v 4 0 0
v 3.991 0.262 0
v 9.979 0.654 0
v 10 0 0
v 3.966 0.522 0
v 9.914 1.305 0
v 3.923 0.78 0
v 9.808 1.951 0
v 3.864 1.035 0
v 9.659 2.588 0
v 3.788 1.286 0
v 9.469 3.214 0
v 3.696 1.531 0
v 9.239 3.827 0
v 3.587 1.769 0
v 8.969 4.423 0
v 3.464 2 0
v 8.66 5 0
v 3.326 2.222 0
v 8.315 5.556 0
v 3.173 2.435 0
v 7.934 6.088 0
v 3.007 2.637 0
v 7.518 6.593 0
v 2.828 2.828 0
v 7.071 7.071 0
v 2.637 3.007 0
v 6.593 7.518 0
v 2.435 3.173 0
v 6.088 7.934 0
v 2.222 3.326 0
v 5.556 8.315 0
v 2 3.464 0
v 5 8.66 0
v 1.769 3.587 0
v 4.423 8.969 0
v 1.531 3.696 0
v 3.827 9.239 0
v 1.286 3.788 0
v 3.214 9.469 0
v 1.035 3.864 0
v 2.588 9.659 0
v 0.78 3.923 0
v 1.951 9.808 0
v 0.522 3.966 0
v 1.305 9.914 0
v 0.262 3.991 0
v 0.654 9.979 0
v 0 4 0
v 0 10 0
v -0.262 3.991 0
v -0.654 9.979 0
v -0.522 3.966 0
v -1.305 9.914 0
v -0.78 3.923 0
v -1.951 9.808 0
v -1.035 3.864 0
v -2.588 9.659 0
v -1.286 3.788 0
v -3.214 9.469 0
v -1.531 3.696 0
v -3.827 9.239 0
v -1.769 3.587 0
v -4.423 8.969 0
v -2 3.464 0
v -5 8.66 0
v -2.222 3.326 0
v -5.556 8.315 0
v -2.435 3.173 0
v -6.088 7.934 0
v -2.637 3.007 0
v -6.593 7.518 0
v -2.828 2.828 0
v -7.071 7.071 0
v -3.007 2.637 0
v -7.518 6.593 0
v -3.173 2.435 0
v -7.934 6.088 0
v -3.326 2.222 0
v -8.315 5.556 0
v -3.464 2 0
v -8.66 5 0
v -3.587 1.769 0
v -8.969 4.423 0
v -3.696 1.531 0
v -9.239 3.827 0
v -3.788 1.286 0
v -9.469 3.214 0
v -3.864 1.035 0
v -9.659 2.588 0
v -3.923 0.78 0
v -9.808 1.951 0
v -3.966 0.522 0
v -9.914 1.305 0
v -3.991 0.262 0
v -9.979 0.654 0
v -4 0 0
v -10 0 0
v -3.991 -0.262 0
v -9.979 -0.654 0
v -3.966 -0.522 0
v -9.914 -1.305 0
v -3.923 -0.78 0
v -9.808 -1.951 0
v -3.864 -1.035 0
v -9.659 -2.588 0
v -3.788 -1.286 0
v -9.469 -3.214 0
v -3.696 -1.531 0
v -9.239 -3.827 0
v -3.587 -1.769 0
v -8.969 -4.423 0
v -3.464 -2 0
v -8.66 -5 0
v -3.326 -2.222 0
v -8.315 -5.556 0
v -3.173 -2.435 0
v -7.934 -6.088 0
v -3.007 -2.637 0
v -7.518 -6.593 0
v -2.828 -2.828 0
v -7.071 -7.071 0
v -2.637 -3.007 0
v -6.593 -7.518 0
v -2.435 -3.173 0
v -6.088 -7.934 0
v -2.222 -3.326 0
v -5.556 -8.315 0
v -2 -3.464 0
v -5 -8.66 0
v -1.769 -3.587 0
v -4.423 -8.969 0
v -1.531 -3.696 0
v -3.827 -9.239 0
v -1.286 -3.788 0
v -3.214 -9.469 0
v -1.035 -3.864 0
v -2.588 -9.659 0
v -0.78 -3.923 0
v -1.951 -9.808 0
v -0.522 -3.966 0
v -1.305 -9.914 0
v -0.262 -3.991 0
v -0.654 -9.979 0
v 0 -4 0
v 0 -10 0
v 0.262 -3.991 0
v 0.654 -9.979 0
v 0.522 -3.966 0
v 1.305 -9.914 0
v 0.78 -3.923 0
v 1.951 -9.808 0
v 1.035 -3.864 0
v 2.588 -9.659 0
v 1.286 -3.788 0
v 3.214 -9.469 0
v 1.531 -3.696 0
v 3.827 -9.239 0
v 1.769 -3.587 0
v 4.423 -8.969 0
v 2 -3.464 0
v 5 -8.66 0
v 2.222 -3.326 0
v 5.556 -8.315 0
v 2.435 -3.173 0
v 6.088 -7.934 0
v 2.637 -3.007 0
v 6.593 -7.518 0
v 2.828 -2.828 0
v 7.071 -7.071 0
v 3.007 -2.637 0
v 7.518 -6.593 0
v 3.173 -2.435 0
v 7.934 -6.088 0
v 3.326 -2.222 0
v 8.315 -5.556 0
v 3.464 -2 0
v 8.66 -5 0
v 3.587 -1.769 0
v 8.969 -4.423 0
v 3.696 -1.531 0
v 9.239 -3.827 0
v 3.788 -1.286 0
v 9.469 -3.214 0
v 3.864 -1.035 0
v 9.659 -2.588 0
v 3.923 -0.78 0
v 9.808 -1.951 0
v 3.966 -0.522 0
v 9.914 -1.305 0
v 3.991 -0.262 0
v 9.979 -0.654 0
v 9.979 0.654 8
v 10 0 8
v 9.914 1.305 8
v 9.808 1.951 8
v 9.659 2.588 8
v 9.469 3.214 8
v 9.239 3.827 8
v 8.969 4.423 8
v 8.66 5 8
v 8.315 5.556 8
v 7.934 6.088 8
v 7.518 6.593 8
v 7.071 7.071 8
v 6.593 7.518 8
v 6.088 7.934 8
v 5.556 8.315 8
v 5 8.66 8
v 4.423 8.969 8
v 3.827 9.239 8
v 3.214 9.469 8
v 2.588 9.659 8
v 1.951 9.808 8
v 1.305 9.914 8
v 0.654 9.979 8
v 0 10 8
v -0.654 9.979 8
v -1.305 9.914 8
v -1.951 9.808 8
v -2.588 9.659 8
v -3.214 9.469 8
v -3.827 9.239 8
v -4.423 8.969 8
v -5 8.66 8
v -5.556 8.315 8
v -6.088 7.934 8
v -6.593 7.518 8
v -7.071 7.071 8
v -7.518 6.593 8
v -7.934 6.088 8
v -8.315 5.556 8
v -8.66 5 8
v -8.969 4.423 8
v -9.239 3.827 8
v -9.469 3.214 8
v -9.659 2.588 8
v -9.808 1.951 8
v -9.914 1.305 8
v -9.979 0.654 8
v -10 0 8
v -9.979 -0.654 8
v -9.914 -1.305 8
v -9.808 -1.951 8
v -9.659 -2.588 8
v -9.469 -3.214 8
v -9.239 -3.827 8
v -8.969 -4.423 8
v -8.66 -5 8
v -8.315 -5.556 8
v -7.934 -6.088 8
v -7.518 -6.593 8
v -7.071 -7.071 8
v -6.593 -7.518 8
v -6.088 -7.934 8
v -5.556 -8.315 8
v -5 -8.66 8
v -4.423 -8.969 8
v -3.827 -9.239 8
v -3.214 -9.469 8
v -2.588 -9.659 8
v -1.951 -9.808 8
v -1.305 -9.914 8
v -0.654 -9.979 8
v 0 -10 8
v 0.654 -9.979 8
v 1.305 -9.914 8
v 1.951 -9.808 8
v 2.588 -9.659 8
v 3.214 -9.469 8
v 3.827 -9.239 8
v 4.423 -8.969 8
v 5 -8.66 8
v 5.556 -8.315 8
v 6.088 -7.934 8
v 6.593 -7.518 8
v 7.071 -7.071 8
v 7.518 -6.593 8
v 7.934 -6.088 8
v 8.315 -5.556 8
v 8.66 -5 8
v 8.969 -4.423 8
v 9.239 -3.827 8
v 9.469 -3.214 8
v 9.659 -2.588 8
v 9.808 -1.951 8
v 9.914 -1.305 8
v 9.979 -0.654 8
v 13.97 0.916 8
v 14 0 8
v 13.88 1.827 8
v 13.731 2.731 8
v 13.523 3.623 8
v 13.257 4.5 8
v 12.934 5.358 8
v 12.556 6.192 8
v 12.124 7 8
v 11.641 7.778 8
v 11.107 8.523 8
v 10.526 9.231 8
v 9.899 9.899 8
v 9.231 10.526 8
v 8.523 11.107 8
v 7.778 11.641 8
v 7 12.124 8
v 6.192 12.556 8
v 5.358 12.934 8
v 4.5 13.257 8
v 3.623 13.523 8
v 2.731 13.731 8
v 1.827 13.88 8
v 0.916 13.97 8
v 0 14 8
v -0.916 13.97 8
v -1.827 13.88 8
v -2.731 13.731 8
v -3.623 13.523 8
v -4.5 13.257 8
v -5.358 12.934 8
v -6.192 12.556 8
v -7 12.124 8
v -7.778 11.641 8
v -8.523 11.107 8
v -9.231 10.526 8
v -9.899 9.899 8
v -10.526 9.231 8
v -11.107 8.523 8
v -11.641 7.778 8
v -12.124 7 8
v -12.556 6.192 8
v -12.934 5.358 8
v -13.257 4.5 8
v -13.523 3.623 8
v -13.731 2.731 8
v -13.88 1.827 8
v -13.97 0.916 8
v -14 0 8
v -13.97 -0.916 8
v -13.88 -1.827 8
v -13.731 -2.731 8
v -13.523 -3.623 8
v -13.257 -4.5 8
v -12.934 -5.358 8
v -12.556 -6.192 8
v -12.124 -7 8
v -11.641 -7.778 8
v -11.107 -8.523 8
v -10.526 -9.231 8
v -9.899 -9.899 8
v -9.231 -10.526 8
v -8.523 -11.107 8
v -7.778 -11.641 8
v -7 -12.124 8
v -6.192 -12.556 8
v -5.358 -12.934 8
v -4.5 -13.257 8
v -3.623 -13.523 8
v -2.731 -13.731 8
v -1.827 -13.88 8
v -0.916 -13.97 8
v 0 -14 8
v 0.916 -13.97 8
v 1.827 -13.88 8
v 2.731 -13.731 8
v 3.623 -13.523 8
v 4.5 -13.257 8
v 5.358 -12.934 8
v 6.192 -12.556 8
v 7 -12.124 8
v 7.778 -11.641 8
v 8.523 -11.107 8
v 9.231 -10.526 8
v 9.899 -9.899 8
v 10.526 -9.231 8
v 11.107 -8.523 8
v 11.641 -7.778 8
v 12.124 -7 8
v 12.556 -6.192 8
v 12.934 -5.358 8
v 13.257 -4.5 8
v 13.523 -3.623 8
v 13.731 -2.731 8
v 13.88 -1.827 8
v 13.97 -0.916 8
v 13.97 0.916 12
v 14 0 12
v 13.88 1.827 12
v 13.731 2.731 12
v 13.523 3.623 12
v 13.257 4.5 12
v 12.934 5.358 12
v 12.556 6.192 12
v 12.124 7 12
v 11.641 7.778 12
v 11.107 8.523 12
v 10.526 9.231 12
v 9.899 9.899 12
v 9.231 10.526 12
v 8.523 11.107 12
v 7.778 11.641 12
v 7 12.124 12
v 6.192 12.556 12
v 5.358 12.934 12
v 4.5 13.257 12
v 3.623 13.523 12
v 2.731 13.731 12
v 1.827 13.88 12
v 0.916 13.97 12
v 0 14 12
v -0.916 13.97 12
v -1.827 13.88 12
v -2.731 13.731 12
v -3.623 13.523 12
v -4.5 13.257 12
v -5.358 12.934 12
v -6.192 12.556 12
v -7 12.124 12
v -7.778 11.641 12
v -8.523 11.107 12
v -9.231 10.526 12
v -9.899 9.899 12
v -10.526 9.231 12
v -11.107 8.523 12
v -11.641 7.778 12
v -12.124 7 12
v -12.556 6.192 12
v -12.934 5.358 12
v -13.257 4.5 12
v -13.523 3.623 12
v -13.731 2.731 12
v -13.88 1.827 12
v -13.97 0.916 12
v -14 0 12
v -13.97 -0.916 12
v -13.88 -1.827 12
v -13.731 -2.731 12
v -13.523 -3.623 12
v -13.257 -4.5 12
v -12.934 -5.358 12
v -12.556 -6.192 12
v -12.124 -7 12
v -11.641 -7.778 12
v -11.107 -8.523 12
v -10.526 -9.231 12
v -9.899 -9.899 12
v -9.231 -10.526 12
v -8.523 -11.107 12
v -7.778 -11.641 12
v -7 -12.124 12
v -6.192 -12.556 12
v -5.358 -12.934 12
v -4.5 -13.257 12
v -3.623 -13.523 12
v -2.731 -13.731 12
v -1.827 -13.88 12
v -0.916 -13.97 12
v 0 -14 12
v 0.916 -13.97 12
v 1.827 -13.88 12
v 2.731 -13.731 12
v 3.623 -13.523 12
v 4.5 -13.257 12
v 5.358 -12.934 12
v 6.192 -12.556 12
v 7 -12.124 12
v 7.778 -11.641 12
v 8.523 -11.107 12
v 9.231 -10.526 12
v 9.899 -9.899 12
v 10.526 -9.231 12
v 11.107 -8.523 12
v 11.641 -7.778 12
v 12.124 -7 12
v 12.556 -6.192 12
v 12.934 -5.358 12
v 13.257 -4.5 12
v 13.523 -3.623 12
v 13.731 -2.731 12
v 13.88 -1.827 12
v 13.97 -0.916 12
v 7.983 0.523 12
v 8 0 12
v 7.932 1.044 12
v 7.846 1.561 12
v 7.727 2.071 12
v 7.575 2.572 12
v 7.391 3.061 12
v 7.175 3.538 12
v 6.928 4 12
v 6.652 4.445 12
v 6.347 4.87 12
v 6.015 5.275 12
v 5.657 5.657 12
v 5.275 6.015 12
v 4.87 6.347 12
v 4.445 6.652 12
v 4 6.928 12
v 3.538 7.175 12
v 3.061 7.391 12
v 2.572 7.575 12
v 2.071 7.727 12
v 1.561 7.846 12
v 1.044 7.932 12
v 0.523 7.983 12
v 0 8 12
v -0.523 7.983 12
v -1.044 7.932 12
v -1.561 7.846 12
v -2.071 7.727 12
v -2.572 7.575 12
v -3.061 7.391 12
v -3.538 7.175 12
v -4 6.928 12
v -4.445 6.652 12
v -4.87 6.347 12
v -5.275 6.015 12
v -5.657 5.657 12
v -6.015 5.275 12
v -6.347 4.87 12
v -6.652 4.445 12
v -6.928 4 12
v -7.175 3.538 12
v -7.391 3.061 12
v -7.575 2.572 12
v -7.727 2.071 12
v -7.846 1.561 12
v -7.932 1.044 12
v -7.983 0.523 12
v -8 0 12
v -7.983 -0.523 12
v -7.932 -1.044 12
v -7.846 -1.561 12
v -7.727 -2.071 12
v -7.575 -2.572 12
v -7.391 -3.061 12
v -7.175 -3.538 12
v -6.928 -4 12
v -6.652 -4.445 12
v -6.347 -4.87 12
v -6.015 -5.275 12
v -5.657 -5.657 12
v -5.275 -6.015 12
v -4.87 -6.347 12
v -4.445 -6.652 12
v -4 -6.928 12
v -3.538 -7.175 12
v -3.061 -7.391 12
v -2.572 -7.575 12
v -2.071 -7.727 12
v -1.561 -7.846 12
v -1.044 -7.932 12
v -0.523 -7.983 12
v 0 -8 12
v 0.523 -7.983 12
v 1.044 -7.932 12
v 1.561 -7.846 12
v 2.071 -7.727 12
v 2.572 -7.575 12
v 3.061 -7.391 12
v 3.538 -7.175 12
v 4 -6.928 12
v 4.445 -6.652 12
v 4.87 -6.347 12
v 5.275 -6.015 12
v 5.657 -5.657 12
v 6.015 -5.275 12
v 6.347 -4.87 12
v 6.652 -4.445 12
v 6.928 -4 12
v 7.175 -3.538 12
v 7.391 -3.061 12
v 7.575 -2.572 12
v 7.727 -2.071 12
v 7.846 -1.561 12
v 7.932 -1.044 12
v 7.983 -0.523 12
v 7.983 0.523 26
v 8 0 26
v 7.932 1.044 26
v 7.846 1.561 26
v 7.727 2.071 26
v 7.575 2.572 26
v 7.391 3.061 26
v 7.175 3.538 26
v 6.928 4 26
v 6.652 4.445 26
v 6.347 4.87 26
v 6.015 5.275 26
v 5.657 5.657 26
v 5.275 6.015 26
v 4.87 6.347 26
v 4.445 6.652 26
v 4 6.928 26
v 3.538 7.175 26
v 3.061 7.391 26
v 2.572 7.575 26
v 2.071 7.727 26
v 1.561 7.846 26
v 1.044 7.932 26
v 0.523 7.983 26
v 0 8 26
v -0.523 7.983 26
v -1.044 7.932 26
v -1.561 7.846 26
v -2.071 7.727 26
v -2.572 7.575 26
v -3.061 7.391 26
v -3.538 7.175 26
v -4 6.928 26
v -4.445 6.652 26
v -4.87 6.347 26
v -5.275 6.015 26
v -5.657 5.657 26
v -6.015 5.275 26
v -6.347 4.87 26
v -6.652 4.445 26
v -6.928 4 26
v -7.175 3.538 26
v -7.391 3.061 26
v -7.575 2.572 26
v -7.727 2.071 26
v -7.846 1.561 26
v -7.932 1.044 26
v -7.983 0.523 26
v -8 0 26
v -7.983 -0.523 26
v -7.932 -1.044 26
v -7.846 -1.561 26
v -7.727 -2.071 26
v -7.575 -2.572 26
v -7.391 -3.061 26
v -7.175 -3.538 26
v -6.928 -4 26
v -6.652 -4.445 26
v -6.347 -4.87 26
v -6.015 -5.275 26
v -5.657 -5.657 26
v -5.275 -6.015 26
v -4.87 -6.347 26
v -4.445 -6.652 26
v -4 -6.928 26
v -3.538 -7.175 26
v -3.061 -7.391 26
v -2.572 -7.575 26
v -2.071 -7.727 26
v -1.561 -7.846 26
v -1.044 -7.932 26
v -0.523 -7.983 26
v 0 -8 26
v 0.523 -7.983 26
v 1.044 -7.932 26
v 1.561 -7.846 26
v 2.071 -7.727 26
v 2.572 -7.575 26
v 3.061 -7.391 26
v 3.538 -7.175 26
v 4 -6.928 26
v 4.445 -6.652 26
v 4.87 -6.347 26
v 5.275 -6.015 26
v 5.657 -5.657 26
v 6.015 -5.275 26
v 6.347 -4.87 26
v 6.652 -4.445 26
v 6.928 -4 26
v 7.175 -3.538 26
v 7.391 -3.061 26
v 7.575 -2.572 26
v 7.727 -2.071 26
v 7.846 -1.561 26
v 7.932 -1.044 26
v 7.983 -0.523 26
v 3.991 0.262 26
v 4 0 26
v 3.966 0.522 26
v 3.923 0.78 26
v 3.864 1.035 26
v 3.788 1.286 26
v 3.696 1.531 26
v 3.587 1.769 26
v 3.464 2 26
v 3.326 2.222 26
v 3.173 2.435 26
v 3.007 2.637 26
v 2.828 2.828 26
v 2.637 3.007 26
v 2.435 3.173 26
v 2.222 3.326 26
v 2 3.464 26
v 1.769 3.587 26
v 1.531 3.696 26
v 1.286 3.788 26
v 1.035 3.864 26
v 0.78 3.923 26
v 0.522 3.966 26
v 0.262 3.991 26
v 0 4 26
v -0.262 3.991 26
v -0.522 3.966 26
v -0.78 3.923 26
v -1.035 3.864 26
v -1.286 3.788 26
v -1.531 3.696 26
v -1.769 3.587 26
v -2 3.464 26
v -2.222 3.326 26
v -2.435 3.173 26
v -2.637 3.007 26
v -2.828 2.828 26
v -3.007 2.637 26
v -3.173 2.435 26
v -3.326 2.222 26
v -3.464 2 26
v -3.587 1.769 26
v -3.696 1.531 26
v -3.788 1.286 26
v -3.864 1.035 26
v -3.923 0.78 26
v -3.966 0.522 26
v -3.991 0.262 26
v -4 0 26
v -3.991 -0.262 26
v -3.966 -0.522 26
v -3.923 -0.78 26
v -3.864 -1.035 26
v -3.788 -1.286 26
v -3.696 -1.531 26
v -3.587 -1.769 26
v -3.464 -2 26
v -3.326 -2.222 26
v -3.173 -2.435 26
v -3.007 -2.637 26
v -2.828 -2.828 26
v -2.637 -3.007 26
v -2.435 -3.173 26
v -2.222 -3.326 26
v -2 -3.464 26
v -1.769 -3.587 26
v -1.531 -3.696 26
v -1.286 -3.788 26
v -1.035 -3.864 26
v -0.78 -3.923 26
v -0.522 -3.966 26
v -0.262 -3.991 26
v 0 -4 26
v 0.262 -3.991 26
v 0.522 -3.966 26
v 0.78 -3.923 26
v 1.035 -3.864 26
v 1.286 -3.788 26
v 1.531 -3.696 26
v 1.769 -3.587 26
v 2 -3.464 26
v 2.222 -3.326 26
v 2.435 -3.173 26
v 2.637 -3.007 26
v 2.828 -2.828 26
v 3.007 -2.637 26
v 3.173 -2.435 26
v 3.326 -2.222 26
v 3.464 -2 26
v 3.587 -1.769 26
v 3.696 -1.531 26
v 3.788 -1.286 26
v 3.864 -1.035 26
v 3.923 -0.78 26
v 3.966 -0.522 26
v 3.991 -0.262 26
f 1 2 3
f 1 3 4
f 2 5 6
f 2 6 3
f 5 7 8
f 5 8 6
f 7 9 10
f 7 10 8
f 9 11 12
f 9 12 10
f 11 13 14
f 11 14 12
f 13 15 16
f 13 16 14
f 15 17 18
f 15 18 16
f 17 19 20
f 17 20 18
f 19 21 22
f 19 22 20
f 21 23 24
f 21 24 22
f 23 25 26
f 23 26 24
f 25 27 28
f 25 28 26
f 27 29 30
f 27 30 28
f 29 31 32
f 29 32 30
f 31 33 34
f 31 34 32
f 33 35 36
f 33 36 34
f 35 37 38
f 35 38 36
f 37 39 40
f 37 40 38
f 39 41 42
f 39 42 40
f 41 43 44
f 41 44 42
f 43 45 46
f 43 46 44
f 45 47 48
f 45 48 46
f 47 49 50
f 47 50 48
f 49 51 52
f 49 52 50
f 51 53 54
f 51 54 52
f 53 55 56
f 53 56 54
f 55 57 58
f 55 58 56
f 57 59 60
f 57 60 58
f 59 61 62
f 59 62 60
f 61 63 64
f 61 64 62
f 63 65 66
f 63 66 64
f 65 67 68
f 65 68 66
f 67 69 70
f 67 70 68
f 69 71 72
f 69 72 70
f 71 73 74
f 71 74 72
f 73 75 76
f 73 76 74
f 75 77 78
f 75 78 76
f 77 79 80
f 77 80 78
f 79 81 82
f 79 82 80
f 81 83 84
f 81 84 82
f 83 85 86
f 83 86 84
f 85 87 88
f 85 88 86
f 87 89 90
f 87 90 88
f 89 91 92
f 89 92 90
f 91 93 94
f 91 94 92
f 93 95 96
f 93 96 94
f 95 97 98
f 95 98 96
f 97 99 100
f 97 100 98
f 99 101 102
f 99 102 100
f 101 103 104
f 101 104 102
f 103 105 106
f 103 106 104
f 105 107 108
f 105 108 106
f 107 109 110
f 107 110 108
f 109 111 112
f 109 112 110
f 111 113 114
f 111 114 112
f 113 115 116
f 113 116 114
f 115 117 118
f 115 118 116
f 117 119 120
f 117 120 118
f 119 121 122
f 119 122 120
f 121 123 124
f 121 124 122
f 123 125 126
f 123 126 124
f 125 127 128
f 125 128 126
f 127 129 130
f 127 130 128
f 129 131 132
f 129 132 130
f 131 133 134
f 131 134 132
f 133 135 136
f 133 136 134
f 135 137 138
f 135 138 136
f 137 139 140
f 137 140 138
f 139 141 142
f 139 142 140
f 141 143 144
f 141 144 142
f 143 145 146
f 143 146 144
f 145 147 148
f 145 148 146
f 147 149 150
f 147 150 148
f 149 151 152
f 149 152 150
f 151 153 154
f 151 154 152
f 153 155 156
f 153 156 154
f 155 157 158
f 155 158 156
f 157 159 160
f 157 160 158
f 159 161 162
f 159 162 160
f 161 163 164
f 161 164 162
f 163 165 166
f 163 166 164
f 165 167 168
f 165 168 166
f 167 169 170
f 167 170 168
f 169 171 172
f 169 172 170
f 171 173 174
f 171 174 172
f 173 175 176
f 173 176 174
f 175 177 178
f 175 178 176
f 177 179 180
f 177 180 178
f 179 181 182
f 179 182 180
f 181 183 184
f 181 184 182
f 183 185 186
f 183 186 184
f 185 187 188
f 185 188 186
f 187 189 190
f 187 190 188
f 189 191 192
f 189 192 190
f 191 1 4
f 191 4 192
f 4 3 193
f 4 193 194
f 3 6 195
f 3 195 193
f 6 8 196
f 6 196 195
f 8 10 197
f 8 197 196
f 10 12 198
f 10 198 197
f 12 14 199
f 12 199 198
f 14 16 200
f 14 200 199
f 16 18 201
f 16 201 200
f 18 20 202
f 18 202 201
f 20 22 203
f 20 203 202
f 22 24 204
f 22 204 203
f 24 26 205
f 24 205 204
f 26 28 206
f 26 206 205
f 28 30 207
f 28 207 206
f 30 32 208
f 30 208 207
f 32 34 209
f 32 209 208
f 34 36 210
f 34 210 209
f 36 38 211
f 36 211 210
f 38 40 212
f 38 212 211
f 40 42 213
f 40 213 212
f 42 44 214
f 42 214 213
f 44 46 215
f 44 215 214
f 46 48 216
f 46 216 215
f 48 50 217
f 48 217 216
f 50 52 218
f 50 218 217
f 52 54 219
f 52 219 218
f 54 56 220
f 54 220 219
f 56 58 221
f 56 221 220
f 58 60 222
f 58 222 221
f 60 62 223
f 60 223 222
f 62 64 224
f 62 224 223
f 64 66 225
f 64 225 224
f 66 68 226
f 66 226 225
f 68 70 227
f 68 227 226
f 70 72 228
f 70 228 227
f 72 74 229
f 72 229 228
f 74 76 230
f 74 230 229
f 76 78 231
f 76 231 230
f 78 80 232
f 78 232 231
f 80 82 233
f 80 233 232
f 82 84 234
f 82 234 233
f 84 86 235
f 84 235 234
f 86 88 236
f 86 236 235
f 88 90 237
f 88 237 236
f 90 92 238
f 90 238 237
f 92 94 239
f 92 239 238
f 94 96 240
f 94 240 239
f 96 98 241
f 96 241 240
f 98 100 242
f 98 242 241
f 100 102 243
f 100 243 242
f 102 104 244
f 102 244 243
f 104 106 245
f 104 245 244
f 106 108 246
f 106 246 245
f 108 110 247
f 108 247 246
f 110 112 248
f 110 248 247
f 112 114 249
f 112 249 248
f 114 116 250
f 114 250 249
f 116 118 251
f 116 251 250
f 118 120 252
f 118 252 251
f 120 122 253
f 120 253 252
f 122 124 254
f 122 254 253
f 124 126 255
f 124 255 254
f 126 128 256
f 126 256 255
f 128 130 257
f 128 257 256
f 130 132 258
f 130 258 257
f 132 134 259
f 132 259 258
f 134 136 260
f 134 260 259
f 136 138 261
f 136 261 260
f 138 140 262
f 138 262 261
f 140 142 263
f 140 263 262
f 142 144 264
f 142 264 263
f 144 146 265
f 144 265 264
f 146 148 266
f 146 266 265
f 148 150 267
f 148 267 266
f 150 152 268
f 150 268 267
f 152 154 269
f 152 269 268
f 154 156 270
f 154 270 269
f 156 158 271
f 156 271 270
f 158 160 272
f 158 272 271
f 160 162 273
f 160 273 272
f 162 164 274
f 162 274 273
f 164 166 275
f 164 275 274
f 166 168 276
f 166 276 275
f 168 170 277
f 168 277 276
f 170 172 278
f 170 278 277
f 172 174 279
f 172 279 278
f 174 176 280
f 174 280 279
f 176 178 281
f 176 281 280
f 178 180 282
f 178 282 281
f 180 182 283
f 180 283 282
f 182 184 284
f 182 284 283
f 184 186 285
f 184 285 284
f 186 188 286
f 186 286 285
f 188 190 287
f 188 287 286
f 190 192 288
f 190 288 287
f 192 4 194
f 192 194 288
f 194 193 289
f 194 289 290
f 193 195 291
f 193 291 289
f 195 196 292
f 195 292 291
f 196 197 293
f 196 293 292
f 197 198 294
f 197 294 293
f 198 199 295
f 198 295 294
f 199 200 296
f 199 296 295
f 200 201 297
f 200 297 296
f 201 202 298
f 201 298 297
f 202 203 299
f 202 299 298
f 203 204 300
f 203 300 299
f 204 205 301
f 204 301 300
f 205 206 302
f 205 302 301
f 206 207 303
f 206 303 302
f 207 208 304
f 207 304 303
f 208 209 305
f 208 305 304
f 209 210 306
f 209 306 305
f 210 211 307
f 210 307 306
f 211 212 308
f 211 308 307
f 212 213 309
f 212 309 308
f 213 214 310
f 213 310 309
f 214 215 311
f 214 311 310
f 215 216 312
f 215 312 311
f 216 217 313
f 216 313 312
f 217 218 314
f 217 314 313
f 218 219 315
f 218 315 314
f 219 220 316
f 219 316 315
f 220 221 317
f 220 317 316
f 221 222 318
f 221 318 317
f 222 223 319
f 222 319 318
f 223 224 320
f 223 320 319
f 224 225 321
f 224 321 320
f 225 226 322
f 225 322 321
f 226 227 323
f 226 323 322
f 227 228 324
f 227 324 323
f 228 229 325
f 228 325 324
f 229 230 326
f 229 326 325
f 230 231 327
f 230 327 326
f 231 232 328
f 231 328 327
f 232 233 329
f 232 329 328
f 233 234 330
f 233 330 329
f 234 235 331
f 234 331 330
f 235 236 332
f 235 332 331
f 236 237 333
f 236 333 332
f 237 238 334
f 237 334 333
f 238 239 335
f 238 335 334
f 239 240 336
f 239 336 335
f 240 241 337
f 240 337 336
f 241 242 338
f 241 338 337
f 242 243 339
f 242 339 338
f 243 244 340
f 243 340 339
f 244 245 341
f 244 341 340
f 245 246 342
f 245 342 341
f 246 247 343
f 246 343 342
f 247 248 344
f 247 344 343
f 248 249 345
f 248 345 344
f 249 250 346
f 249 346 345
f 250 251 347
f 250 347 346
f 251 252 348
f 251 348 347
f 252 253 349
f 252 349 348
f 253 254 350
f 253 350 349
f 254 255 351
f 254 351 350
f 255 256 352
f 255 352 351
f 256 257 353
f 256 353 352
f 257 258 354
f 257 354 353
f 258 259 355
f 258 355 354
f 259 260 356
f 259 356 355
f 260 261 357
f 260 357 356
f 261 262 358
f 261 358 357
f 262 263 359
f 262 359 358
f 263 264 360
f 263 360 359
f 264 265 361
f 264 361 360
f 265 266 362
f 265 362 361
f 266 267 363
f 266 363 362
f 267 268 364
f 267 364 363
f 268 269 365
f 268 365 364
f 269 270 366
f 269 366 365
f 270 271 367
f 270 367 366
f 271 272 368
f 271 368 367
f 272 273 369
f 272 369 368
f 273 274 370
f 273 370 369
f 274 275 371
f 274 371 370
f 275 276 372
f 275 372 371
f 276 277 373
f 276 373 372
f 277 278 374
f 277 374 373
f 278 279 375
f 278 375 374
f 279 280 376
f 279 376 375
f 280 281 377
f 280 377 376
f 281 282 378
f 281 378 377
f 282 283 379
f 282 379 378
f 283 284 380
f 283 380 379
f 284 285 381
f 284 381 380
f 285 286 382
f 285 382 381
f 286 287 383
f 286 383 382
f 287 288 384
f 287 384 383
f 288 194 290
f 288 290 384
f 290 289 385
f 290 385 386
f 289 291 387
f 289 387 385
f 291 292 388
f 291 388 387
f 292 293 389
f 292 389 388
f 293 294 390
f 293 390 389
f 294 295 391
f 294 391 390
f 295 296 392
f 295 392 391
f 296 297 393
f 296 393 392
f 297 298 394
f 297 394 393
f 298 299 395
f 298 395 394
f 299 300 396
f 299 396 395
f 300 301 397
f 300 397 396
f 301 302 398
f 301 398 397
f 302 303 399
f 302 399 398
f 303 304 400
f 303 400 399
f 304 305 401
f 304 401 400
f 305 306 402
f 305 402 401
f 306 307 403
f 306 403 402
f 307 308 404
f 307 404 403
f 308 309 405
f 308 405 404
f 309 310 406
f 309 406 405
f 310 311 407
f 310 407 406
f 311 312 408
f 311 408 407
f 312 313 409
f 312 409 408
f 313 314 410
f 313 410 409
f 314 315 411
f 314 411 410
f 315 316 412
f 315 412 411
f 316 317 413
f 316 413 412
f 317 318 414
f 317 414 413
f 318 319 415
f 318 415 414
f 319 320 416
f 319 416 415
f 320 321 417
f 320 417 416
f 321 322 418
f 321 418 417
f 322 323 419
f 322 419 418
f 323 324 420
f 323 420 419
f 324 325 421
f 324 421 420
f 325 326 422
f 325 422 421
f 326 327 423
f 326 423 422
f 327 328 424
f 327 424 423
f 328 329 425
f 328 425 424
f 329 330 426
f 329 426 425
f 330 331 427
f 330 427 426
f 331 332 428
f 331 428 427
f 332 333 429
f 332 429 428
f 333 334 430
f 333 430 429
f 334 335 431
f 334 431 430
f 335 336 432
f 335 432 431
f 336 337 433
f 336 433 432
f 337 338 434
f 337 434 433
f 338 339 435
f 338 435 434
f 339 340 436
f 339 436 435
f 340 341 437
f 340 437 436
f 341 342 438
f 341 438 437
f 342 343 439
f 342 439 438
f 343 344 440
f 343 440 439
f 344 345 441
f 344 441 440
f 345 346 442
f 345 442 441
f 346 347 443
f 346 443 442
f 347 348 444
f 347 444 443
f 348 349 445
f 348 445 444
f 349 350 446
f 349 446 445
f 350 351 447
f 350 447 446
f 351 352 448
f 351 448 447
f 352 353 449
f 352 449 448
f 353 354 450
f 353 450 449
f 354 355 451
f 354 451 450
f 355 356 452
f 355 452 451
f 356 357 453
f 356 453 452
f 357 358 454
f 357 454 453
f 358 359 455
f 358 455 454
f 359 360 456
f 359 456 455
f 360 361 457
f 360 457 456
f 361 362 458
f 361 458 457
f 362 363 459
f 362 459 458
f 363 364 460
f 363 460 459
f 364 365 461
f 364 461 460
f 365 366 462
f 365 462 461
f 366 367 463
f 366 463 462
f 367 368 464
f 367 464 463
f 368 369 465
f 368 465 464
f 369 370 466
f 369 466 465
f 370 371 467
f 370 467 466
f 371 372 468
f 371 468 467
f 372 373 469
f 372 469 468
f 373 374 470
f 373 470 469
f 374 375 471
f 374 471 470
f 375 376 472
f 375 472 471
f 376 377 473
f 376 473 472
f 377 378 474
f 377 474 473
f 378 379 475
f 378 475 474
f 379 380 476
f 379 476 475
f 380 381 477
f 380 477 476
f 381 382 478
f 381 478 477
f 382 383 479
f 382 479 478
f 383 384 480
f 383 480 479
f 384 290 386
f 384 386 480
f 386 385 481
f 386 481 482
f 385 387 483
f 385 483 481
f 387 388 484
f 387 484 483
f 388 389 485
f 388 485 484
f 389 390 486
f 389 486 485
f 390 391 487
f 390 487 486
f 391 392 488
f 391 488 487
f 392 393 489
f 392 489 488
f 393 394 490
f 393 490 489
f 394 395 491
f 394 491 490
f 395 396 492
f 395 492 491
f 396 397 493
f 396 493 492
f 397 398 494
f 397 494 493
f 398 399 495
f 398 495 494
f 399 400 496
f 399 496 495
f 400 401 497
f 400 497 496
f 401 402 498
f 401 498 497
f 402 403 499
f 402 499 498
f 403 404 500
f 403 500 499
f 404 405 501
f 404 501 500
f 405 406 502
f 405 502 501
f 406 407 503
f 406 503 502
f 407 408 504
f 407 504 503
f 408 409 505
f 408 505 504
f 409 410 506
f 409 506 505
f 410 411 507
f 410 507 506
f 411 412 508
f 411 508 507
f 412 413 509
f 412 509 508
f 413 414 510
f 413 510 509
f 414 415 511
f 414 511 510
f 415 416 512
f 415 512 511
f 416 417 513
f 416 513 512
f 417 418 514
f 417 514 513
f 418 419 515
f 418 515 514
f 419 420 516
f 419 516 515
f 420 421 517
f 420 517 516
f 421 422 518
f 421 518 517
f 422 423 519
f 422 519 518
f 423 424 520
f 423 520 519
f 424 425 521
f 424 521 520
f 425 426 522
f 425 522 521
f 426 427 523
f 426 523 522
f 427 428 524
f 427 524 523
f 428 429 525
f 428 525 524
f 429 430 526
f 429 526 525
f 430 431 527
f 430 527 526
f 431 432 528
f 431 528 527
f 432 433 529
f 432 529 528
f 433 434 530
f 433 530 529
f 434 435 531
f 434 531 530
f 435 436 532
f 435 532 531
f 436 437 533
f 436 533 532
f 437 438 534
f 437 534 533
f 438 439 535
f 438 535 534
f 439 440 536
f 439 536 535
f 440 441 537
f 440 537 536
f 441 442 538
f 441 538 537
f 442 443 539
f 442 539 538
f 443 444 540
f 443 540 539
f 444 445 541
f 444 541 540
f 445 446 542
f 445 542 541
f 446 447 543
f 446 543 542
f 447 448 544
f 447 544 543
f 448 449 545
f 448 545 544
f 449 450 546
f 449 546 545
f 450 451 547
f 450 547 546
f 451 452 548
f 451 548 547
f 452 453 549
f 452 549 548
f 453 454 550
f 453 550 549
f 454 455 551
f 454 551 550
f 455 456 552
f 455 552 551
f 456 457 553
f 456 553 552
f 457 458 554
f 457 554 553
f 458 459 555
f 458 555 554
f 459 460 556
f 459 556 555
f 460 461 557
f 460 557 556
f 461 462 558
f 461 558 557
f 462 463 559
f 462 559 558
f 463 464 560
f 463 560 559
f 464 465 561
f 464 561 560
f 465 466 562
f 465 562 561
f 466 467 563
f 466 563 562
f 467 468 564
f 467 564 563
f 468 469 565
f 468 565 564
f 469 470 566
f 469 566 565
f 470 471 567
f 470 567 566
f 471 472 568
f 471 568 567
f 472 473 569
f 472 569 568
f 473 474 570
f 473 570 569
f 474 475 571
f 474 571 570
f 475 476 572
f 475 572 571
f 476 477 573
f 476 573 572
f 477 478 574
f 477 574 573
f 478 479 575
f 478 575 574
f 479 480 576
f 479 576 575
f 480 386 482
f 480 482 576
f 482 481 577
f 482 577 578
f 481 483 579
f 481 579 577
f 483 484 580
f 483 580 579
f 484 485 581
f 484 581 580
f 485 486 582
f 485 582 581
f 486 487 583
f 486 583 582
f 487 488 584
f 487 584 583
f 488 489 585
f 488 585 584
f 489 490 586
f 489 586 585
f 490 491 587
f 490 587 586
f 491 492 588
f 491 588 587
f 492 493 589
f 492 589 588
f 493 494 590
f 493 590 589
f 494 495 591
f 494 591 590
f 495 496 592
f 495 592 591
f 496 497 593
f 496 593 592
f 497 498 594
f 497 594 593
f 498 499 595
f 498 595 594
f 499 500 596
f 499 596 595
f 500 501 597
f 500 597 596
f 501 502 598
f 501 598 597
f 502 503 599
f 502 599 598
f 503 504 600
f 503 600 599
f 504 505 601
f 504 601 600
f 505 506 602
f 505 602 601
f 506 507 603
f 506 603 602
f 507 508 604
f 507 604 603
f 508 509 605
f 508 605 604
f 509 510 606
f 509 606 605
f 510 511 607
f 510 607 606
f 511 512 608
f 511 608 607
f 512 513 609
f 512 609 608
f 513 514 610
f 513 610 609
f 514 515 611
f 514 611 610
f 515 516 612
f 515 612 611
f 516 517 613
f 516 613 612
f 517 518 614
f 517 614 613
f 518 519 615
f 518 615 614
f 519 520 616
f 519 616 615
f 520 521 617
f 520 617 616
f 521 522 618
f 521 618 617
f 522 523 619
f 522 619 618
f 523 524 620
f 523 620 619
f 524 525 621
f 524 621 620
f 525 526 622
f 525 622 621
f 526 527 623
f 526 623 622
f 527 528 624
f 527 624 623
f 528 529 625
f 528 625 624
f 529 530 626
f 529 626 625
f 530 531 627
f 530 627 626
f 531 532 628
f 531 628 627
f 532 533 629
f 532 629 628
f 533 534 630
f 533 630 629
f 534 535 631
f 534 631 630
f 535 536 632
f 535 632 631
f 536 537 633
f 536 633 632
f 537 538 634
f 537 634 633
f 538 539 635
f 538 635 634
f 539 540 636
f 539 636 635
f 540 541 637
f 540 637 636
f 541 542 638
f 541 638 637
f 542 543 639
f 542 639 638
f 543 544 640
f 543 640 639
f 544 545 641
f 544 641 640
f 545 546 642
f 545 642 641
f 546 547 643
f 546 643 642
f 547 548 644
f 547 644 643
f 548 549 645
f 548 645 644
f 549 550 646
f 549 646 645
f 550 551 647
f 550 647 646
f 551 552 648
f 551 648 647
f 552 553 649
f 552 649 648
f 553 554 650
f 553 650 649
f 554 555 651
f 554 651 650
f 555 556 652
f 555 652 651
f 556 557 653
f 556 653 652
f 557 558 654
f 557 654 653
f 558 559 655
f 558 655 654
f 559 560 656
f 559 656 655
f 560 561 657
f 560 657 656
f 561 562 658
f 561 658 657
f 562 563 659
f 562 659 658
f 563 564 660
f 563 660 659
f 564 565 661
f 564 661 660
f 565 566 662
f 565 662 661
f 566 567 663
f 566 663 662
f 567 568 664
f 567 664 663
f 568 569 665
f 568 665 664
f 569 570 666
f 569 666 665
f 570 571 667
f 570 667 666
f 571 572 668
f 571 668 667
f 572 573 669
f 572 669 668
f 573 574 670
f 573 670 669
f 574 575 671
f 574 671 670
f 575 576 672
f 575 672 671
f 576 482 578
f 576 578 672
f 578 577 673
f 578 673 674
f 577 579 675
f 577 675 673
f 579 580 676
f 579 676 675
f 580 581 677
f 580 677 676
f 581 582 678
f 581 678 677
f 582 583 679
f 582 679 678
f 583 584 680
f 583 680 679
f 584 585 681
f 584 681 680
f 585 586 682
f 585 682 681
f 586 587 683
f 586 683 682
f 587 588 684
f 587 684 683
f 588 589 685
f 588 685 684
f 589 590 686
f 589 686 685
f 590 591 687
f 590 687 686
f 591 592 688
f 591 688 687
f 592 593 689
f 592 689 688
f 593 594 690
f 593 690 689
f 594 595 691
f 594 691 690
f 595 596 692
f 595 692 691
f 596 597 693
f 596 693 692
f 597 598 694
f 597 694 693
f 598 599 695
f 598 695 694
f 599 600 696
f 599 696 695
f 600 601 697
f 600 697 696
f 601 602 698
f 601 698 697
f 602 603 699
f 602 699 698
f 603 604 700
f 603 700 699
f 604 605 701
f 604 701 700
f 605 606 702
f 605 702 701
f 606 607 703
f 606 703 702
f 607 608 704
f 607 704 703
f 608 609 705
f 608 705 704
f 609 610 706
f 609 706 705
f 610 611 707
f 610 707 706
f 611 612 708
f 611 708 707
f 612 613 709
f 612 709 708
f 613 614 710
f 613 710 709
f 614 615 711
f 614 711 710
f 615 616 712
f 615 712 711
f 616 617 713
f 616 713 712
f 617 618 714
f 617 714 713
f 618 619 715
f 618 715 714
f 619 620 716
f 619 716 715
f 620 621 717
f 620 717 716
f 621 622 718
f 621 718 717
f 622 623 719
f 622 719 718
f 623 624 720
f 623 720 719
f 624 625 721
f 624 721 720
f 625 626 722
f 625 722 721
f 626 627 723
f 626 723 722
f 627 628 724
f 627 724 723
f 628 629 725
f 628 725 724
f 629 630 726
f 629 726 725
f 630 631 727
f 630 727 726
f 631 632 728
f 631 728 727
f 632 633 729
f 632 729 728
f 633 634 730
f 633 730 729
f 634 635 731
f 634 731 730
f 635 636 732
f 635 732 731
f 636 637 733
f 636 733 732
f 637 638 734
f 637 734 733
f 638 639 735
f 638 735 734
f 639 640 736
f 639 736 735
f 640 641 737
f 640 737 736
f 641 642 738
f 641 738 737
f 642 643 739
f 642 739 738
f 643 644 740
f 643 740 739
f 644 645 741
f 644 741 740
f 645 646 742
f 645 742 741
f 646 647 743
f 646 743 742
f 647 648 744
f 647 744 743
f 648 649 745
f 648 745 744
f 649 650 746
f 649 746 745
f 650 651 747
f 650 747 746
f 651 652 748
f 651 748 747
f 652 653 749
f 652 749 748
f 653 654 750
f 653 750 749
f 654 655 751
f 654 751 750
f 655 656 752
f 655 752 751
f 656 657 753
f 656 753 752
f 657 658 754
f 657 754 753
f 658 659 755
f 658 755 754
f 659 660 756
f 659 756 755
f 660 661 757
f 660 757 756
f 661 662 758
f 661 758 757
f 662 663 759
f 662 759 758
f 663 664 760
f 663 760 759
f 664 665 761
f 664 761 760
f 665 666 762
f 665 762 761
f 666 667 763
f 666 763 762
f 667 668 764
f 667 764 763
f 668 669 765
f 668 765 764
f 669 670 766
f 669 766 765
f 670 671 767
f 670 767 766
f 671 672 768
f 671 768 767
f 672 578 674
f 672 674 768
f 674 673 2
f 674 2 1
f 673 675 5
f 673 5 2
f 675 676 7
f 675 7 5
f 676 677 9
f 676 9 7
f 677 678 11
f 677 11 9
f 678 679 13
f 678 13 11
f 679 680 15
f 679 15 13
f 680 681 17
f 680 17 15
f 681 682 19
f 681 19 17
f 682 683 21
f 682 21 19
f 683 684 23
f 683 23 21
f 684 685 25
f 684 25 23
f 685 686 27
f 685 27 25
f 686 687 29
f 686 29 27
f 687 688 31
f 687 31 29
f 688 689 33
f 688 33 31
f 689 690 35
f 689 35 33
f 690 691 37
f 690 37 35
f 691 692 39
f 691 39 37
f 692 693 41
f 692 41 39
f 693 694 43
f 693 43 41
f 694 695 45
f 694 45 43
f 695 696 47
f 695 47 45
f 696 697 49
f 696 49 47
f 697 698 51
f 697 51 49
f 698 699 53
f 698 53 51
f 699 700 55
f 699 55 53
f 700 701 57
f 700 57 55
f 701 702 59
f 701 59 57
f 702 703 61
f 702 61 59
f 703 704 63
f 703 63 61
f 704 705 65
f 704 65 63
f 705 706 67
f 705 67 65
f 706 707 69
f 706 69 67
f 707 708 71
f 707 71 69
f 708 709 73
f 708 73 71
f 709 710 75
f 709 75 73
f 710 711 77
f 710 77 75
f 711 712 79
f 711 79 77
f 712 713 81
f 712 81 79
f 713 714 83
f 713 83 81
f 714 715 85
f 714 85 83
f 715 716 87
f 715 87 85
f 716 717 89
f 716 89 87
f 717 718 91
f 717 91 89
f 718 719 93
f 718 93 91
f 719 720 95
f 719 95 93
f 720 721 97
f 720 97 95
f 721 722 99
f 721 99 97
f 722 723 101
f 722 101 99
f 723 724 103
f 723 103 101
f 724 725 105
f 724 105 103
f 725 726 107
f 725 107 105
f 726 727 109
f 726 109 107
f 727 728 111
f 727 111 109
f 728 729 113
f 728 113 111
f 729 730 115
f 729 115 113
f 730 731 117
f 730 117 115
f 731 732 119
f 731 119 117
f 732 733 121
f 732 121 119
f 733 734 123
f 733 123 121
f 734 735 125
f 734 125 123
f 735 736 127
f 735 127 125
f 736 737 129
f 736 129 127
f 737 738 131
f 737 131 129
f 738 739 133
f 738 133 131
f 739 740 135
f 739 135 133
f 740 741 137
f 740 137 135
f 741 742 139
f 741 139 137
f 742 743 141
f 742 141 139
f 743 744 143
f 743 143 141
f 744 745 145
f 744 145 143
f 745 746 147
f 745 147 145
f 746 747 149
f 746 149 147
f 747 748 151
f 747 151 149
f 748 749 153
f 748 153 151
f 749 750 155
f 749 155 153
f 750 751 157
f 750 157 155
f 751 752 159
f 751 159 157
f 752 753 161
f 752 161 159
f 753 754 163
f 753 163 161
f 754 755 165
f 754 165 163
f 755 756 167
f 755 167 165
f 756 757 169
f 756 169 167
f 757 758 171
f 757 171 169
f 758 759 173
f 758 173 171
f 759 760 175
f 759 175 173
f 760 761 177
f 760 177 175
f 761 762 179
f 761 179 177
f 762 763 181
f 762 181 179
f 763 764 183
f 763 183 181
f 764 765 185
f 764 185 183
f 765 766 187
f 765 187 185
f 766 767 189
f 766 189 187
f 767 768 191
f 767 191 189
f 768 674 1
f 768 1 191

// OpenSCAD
// Original MechIntel educational model. CC0-1.0. Units: mm.
// Not a standardized or load-rated component.
$fn=96;
// Section points: [radius, height], mm. Edit to change the profile.
section=[[4, 0], [10, 0], [10, 8], [14, 8], [14, 12], [8, 12], [8, 26], [4, 26]];
rotate_extrude($fn=96) polygon(points=section);
